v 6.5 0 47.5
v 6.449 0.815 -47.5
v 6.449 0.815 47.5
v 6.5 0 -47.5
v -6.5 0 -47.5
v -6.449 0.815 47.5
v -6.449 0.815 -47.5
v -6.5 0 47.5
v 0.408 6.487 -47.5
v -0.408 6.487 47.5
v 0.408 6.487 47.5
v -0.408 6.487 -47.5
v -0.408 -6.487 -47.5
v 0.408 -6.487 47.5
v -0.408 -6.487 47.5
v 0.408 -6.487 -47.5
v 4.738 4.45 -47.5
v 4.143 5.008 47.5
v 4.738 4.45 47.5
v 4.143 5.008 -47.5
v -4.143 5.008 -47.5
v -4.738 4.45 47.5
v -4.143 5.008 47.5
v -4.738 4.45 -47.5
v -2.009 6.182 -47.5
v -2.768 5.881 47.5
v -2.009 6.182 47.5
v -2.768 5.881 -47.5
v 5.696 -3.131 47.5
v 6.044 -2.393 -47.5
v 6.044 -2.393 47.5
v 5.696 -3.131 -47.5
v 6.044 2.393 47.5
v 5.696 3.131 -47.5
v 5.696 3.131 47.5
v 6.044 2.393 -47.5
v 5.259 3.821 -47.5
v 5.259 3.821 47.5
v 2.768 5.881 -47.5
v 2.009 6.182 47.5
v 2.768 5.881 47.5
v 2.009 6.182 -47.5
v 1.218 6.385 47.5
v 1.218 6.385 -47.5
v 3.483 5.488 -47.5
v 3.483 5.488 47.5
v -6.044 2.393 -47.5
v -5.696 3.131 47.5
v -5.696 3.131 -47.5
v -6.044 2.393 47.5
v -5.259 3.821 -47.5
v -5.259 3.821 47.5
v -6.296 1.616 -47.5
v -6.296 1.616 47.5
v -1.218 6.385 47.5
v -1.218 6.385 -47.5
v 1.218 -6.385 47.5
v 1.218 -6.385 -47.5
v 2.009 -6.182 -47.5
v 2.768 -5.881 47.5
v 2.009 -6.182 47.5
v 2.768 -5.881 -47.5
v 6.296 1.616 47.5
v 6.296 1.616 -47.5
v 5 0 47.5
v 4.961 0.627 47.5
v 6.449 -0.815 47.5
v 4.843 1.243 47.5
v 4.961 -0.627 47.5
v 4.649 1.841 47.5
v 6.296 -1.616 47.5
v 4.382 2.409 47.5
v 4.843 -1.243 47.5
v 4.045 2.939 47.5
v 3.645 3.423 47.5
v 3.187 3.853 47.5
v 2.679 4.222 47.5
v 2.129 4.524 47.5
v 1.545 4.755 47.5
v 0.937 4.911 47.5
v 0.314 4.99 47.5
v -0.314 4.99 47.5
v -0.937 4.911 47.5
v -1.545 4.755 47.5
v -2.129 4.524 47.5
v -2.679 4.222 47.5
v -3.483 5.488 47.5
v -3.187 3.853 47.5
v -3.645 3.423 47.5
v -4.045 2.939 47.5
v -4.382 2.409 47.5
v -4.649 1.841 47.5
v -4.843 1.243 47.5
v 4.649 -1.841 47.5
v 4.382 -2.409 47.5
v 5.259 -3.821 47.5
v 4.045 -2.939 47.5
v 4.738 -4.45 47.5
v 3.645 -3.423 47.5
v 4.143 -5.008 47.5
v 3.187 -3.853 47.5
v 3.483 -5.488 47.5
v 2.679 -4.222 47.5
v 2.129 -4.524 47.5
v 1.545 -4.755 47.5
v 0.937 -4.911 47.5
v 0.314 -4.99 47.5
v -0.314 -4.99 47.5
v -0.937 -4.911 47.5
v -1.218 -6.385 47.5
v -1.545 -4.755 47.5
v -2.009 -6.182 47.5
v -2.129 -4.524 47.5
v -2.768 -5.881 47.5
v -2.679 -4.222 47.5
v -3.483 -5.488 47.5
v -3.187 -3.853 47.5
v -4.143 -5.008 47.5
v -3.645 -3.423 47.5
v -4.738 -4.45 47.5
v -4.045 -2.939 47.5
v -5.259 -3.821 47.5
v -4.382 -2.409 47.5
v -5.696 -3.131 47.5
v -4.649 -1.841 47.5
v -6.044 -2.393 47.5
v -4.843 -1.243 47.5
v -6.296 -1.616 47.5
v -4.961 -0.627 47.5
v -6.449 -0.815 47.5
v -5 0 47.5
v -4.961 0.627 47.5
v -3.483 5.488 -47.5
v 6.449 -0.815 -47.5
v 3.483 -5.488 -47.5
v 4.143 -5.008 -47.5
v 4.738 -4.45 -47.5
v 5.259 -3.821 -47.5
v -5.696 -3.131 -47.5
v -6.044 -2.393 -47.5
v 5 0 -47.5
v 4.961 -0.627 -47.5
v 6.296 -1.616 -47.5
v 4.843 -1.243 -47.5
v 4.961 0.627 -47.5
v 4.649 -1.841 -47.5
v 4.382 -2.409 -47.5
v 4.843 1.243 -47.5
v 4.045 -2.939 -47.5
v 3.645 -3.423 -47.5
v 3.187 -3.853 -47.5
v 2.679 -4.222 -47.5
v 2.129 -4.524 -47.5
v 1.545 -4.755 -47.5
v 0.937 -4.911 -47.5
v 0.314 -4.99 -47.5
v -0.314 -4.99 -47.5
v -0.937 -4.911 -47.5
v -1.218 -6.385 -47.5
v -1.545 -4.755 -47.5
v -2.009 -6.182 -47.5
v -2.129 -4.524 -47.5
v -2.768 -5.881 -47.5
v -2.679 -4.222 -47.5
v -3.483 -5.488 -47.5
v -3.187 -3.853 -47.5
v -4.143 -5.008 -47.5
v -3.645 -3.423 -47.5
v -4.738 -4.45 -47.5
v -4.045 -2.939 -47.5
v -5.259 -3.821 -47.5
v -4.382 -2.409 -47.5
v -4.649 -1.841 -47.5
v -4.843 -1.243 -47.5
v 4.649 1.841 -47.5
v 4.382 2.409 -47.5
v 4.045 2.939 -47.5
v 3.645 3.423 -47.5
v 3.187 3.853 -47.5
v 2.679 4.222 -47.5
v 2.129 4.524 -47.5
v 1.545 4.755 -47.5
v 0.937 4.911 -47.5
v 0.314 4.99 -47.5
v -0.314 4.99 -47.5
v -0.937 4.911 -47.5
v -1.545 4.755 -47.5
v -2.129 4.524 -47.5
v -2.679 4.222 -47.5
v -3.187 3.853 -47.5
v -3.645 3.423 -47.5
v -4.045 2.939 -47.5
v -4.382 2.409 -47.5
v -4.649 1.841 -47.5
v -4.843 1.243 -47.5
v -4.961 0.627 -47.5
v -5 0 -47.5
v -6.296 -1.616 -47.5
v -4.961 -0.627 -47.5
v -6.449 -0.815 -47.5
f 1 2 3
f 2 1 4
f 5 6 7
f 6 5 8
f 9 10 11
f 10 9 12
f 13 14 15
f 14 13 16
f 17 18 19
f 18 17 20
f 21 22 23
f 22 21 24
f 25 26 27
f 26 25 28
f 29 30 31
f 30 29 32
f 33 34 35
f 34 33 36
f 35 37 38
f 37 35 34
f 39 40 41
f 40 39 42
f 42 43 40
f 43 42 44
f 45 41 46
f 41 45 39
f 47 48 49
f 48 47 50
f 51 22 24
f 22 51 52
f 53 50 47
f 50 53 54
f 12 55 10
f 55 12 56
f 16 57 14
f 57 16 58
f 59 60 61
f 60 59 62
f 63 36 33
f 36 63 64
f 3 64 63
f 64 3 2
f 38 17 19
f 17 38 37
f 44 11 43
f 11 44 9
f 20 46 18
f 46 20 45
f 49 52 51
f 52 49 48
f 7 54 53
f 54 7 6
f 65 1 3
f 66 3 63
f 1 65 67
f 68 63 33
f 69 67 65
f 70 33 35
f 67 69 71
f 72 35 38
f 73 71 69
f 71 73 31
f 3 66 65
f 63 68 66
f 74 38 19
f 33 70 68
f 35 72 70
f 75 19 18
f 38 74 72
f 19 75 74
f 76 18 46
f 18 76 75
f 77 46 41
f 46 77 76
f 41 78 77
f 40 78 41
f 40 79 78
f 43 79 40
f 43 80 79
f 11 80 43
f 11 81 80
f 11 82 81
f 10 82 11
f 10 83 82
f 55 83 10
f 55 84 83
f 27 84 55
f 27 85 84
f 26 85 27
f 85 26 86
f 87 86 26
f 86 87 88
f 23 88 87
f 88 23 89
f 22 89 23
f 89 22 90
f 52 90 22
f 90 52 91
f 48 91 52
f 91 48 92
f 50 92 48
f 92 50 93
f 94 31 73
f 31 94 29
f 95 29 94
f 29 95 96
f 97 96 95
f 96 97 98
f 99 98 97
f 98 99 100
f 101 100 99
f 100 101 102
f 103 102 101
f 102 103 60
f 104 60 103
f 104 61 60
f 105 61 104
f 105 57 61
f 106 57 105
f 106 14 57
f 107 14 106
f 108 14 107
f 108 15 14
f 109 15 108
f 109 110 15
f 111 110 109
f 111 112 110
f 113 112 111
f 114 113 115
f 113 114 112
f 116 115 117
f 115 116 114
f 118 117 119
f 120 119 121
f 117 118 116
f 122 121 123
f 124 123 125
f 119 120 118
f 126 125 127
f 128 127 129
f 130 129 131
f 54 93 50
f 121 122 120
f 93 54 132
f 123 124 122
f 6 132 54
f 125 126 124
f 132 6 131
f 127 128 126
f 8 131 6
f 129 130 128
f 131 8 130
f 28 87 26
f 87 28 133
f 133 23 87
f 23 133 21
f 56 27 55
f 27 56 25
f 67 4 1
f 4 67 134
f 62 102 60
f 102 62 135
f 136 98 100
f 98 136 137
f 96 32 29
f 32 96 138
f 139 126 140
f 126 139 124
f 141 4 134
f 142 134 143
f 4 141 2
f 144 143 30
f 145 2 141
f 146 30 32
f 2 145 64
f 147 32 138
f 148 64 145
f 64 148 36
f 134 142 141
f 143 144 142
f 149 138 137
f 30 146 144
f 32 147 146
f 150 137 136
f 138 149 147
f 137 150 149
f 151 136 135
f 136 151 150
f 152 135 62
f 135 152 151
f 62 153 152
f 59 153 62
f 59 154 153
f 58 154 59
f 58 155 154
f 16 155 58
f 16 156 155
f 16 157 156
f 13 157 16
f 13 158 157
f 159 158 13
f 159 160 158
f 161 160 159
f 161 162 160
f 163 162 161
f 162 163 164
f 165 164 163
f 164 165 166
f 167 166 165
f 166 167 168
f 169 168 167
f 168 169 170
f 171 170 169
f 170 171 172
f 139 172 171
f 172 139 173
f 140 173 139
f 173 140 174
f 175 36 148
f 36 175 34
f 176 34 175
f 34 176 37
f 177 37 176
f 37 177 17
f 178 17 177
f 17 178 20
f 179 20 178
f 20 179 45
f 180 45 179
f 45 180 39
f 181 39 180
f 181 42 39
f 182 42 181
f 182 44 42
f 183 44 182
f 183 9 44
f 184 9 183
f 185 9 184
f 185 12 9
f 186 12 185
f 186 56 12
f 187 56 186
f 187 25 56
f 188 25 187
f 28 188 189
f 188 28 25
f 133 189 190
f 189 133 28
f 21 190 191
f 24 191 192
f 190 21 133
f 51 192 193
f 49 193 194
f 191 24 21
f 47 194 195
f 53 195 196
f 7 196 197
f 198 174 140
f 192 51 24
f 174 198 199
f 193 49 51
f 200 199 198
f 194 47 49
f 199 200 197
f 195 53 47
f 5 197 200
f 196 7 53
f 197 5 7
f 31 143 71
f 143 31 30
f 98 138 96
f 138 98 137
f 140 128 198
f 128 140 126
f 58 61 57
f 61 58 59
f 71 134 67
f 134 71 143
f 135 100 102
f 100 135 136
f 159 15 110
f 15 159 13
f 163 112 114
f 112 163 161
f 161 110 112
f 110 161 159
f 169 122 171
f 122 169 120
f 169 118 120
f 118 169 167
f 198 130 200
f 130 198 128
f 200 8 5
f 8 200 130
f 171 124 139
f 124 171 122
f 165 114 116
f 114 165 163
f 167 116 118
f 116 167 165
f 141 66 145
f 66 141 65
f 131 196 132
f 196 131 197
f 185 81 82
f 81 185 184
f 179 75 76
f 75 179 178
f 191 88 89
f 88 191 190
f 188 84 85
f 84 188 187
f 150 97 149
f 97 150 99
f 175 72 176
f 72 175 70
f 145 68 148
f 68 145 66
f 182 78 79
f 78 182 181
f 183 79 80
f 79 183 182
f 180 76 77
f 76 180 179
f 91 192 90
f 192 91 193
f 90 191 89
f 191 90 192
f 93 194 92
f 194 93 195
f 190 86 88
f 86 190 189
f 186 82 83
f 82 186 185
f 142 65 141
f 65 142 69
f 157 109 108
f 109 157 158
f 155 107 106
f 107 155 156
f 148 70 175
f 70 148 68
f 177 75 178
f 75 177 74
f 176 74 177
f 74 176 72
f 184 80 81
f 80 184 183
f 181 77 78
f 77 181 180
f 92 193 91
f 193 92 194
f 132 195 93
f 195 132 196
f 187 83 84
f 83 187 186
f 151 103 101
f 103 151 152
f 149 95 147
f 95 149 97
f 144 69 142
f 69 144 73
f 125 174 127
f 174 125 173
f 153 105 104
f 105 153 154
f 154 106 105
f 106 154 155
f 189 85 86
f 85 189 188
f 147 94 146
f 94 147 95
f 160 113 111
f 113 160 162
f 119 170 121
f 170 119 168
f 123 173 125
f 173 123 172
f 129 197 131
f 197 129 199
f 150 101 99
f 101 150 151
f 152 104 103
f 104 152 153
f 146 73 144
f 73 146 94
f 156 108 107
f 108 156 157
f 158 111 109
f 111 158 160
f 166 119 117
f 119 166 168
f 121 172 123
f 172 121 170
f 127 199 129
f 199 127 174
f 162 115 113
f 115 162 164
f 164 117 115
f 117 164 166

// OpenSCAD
$fn = 50;


difference() {
	union() {
		translate(v = [0, 0, -47.5000000000]) {
			cylinder(h = 95, r = 6.5000000000);
		}
	}
	union() {
		translate(v = [0, 0, -100.0000000000]) {
			cylinder(h = 200, r = 5.0000000000);
		}
	}
}
